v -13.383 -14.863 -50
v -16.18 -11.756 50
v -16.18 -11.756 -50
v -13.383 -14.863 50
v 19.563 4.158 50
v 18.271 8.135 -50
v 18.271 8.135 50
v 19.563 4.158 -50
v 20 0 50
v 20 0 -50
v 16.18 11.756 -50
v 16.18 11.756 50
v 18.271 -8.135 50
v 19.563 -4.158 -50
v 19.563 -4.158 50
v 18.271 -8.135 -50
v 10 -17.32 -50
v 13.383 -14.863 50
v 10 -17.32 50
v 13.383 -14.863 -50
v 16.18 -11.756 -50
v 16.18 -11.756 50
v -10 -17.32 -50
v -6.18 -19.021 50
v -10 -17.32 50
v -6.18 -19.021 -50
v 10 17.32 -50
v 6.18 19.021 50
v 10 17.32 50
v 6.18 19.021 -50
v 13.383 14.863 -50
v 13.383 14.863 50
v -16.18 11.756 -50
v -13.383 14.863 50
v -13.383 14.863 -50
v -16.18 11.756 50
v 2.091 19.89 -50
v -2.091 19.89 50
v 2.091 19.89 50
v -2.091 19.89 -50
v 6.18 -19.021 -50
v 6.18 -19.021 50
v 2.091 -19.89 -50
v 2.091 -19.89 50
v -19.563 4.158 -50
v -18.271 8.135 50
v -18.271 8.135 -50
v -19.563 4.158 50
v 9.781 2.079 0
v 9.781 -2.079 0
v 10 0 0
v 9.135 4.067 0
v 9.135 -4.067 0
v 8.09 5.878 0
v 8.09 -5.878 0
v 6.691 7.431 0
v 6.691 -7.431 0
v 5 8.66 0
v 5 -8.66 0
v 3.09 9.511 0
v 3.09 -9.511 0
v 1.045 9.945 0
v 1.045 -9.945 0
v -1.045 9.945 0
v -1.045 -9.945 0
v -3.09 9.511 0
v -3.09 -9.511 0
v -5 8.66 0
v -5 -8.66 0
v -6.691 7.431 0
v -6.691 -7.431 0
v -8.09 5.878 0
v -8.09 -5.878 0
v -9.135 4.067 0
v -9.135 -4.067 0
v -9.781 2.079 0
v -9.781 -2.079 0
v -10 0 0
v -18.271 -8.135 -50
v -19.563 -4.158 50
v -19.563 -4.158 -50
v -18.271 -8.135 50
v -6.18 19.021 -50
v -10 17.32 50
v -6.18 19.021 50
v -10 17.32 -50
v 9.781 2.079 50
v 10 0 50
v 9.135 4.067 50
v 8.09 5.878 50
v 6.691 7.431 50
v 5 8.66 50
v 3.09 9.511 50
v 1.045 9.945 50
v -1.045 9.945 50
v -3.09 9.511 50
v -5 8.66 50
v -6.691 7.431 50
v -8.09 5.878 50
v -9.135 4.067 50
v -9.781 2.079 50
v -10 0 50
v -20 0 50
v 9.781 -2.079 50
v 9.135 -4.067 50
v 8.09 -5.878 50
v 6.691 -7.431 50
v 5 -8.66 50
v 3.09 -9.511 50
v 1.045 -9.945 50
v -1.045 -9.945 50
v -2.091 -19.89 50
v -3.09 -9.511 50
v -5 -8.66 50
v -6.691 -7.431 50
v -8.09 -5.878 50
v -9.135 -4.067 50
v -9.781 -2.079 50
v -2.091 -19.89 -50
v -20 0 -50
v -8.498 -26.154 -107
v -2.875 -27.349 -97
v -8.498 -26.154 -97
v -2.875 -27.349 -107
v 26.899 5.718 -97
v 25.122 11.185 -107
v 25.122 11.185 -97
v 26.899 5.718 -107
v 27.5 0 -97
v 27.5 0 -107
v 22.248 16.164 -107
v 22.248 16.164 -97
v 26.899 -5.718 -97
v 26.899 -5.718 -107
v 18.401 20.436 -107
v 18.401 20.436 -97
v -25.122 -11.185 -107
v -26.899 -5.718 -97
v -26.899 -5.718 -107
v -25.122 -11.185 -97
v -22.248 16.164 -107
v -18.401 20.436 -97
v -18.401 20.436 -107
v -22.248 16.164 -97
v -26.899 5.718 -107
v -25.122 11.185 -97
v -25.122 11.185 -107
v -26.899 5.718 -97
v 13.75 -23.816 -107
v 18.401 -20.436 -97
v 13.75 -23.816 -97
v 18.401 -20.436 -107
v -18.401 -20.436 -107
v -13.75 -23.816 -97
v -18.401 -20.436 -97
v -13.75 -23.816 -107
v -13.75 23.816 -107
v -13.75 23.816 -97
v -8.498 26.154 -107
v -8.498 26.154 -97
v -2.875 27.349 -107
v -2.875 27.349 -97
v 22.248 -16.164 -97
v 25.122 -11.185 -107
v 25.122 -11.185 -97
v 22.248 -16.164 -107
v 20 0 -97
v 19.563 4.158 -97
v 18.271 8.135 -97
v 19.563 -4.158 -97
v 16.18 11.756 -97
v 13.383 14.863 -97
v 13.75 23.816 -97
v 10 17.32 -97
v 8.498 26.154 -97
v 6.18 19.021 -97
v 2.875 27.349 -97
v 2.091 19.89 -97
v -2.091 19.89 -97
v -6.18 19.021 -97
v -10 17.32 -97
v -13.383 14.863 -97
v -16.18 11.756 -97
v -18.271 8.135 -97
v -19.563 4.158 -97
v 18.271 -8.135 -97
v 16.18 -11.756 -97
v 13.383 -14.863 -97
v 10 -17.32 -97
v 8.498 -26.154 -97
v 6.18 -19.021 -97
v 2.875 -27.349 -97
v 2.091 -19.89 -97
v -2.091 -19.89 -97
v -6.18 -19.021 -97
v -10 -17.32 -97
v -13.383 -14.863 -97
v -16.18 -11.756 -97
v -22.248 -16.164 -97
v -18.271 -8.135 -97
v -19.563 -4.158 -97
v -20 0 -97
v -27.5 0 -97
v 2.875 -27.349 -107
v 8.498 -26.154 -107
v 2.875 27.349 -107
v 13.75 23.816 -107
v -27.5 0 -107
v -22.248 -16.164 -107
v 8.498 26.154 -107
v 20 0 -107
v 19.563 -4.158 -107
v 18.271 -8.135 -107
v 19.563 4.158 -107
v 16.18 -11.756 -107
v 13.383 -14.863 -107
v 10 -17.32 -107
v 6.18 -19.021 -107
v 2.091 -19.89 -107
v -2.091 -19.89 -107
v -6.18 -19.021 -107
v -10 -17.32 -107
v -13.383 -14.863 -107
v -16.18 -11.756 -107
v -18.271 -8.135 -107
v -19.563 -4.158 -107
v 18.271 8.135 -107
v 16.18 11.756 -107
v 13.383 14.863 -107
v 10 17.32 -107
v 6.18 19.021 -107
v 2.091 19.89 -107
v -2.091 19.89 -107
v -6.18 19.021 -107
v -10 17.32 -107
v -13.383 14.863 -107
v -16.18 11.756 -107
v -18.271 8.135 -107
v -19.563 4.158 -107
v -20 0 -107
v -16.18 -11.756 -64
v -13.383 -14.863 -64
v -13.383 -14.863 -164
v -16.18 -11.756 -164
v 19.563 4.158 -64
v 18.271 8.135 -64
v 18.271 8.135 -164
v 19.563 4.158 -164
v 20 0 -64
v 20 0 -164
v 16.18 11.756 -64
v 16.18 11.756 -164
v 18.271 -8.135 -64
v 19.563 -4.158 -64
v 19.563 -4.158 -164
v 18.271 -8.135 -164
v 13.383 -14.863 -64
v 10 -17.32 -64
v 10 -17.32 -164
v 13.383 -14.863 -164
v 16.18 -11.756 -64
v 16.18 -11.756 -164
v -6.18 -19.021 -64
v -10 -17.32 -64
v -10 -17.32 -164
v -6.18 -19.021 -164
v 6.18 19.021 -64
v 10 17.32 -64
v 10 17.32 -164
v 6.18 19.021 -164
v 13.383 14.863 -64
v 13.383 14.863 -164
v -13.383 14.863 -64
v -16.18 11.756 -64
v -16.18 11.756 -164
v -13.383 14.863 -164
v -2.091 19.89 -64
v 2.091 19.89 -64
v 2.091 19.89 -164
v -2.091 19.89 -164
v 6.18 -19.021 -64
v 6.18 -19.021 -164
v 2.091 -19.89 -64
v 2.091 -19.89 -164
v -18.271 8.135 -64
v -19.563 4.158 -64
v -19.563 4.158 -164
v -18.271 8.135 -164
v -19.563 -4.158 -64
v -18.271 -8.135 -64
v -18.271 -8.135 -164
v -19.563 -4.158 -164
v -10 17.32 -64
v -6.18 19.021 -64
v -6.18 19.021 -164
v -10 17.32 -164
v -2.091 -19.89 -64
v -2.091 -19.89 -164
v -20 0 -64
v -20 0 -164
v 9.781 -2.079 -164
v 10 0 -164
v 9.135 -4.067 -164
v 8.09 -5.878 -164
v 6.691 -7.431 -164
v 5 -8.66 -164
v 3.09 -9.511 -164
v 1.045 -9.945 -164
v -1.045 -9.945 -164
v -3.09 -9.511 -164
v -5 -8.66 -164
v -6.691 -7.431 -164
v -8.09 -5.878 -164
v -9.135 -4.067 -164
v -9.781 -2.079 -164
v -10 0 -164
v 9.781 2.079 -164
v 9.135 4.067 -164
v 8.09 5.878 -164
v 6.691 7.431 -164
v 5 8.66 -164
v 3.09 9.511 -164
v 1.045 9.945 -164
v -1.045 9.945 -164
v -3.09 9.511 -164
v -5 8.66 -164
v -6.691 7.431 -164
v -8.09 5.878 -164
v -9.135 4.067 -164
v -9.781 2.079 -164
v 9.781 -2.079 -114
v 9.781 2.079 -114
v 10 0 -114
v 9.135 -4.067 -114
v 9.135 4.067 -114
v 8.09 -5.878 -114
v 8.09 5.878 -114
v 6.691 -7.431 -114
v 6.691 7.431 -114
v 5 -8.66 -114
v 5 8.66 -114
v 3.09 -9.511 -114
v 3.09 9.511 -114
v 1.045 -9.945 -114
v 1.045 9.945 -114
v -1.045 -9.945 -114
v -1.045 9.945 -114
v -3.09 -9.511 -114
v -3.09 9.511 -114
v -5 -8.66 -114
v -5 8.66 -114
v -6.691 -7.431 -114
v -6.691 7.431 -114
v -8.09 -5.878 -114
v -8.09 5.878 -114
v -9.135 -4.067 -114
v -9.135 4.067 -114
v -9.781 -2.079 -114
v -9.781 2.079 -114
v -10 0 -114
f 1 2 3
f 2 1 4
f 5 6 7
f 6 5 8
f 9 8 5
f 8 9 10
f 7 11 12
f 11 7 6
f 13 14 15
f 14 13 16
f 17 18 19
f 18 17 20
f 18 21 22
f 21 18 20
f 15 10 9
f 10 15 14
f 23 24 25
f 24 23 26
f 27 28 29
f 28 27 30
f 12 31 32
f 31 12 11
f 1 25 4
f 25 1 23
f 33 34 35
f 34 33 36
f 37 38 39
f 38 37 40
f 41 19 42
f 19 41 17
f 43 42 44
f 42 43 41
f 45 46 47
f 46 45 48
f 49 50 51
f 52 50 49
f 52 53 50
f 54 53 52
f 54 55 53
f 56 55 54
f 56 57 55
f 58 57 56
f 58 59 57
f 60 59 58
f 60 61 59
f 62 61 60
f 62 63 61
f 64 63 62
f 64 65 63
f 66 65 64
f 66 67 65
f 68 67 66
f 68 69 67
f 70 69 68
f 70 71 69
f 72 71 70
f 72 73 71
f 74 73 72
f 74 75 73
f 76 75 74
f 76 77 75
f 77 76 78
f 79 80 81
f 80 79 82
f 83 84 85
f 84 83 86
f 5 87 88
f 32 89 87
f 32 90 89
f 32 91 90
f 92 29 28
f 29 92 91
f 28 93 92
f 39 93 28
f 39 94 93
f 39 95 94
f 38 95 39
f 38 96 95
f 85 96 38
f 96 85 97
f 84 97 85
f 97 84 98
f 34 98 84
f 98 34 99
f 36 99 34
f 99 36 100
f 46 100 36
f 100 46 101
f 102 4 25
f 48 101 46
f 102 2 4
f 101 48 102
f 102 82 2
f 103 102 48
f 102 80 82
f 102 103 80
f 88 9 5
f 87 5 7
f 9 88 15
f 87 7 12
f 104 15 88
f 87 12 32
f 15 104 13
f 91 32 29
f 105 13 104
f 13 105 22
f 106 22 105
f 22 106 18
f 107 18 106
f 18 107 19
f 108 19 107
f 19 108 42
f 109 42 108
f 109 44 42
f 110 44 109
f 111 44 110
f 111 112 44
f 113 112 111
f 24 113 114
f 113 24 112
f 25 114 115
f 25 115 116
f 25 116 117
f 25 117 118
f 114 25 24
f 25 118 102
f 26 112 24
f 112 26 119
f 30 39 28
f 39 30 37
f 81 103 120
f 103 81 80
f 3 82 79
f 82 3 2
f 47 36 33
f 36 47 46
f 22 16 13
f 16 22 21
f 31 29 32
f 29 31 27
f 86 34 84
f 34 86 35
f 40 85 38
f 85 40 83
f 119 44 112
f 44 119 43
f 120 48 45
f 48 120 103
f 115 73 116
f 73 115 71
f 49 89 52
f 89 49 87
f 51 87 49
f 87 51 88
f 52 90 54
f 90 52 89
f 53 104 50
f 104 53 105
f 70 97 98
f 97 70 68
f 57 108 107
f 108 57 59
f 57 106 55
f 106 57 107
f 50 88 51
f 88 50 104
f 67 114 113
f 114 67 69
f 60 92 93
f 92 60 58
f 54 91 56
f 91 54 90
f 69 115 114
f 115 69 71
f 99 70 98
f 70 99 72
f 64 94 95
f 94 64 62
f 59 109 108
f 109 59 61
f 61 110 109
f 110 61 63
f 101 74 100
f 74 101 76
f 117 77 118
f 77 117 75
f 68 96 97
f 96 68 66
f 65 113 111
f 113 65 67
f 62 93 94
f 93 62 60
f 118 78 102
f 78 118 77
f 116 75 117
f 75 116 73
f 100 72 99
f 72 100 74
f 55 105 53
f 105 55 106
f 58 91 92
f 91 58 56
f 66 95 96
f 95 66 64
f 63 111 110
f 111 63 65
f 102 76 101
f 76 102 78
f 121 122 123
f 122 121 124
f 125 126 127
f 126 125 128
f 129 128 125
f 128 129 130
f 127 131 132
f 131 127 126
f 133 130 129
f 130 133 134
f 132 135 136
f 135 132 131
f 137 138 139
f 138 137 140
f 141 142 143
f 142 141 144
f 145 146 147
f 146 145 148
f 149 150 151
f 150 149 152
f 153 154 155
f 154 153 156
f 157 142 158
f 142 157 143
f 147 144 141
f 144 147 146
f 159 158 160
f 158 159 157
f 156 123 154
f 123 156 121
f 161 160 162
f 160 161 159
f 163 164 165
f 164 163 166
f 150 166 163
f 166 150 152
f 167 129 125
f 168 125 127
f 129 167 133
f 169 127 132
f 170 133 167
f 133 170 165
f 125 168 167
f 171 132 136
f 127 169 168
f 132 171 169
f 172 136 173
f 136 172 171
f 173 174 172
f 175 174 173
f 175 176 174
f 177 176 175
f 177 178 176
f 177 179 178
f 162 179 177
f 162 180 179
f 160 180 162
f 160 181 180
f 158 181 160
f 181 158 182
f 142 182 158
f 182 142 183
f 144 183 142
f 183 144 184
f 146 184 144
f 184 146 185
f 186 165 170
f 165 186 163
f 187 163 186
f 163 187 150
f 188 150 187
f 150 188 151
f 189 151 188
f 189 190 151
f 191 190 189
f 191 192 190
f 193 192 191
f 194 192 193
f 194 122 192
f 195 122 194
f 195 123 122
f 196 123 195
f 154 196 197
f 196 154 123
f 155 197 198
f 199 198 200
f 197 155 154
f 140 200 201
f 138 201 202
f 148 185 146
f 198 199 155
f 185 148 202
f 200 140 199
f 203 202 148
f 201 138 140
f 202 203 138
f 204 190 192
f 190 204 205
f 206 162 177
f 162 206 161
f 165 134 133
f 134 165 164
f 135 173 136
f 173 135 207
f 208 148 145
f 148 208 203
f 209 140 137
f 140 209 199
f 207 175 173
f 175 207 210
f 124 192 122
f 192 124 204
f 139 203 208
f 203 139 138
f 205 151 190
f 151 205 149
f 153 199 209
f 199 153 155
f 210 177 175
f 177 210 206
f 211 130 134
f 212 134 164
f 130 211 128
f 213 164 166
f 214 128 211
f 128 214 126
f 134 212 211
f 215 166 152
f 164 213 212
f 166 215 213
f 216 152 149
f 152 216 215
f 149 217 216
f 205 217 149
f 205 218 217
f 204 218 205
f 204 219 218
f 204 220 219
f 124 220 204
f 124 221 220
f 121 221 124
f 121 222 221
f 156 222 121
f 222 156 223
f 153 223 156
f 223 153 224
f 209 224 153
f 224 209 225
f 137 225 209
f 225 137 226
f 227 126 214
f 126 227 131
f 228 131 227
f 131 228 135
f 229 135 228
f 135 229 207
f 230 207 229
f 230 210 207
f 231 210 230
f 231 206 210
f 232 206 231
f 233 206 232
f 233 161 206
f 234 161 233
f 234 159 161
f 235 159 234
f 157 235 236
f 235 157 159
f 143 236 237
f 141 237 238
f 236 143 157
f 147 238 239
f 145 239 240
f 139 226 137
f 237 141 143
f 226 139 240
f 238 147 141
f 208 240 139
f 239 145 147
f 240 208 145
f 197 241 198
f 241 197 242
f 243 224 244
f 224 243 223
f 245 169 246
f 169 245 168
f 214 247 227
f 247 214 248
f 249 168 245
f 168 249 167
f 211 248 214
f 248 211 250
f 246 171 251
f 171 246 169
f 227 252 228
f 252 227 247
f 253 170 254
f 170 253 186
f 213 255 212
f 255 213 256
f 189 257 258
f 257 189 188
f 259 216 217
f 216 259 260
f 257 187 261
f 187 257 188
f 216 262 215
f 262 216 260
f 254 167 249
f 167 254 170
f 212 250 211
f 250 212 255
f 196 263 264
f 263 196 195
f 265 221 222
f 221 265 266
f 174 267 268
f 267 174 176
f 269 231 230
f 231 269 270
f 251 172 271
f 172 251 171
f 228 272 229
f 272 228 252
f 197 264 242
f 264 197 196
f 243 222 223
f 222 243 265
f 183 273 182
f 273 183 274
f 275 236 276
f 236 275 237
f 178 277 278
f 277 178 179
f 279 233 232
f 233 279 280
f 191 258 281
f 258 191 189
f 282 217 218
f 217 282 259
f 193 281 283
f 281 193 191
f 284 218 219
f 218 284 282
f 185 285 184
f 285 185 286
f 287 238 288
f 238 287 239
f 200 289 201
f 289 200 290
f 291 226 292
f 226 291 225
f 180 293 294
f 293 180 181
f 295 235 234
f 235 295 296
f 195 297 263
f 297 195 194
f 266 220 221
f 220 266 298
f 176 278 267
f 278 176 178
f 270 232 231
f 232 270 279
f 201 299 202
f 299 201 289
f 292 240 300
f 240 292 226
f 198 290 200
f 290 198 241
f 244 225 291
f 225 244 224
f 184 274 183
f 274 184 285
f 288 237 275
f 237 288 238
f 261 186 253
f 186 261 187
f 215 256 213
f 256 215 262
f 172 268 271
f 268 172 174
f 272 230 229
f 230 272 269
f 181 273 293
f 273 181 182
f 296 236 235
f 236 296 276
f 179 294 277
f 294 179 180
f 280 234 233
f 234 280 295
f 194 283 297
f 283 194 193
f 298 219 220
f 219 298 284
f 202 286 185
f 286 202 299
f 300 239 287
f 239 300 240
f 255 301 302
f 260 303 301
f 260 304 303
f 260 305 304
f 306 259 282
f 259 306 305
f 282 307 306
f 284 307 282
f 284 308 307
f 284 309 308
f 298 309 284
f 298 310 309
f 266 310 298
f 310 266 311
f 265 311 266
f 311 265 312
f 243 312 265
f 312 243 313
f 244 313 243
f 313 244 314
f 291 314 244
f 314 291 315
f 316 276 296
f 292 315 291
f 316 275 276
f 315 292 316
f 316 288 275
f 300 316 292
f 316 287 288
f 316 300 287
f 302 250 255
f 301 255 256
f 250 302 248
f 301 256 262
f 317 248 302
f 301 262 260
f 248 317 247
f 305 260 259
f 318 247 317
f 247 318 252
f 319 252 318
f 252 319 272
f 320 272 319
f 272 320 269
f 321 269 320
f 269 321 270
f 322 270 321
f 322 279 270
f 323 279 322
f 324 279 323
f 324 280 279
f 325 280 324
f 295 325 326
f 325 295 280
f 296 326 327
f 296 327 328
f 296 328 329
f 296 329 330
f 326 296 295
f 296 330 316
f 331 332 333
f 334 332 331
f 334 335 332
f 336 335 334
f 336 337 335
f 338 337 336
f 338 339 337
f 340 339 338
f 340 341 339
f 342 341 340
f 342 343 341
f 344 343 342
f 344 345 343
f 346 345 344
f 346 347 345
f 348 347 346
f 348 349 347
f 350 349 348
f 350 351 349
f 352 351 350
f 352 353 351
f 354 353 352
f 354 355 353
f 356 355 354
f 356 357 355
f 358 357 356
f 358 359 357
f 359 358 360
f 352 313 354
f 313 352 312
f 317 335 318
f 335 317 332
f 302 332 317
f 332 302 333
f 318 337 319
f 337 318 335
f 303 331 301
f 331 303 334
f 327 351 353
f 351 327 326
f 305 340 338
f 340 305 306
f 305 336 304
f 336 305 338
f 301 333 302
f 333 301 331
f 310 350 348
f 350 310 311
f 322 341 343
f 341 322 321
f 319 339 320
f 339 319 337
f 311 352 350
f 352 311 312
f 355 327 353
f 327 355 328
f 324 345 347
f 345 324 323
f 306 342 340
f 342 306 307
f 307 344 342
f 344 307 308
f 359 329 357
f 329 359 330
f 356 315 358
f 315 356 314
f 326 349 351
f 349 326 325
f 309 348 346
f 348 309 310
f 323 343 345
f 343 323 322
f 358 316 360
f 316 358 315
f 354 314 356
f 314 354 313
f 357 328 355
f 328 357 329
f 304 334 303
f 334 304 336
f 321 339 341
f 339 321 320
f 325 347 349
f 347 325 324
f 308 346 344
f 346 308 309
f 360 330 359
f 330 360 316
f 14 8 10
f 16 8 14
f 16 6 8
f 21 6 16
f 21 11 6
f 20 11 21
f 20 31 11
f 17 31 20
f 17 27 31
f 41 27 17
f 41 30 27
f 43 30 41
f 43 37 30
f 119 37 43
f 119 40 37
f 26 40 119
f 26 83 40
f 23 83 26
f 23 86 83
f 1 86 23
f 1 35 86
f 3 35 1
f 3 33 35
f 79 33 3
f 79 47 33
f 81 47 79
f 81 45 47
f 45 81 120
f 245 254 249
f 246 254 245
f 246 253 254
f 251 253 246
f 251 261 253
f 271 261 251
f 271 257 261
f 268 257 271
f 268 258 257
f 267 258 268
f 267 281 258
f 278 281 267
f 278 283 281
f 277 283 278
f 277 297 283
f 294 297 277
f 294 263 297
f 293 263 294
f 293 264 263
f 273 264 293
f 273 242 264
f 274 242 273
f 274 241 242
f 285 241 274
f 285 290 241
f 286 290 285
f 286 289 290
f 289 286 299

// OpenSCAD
// Define parameters for components
hollow_cylindrical_body_diameter = 40;
hollow_cylindrical_body_height = 50;
hollow_cylindrical_body_inner_diameter = 20; // Adjusted to ensure uniform inner cavity

solid_cylindrical_body_diameter = 40;
solid_cylindrical_body_height = 50;

spacer_ring_outer_diameter = 40;
spacer_ring_inner_diameter = 30;
spacer_ring_thickness = 2; // Reduced thickness to match original model

flange_plate_outer_diameter = 55; // Increased outer diameter to match original model
flange_plate_inner_diameter = 30;
flange_plate_thickness = 5;

bolt_diameter = 5;
bolt_length = 70; // Extended length to match original model
bolt_head_diameter = 8; // Increased head diameter to match original model
bolt_threaded_length = 60; // Extended threaded section

nut_diameter = 10;
nut_thickness = 5;

// Hollow cylindrical body
module hollow_cylindrical_body() {
    difference() {
        cylinder(h = hollow_cylindrical_body_height, d = hollow_cylindrical_body_diameter);
        translate([0, 0, -1]) // Ensure inner cavity runs through
            cylinder(h = hollow_cylindrical_body_height + 2, d = hollow_cylindrical_body_inner_diameter);
    }
}

// Solid cylindrical body
module solid_cylindrical_body() {
    cylinder(h = solid_cylindrical_body_height, d = solid_cylindrical_body_diameter);
}

// Spacer ring
module spacer_ring() {
    difference() {
        cylinder(h = spacer_ring_thickness, d = spacer_ring_outer_diameter);
        translate([0, 0, -1]) // Ensure hollow center
            cylinder(h = spacer_ring_thickness + 2, d = spacer_ring_inner_diameter);
    }
}

// Flange plate
module flange_plate() {
    difference() {
        cylinder(h = flange_plate_thickness, d = flange_plate_outer_diameter);
        translate([0, 0, -1]) // Ensure hollow center
            cylinder(h = flange_plate_thickness + 2, d = flange_plate_inner_diameter);
    }
}

// Bolt
module bolt() {
    union() {
        cylinder(h = bolt_threaded_length, d = bolt_diameter); // Threaded section
        translate([0, 0, bolt_threaded_length])
            cylinder(h = bolt_length - bolt_threaded_length, d = bolt_head_diameter); // Bolt head
    }
}

// Nut
module nut() {
    difference() {
        cylinder(h = nut_thickness, d = nut_diameter);
        translate([0, 0, -1]) // Ensure threaded cavity
            cylinder(h = nut_thickness + 2, d = bolt_diameter);
    }
}

// Assemble the model
translate([0, 0, 0]) hollow_cylindrical_body(); // Layer 1
translate([0, 0, -hollow_cylindrical_body_height]) solid_cylindrical_body(); // Layer 2
translate([0, 0, -hollow_cylindrical_body_height - solid_cylindrical_body_height]) spacer_ring(); // Layer 3
translate([0, 0, -hollow_cylindrical_body_height - solid_cylindrical_body_height - spacer_ring_thickness]) flange_plate(); // Layer 4
translate([0, 0, -hollow_cylindrical_body_height - solid_cylindrical_body_height - spacer_ring_thickness - flange_plate_thickness]) flange_plate(); // Layer 5
translate([0, 0, -hollow_cylindrical_body_height - solid_cylindrical_body_height - spacer_ring_thickness - flange_plate_thickness * 2]) spacer_ring(); // Layer 6
translate([0, 0, -hollow_cylindrical_body_height - solid_cylindrical_body_height - spacer_ring_thickness - flange_plate_thickness * 2 - spacer_ring_thickness]) solid_cylindrical_body(); // Layer 7
translate([0, 0, -hollow_cylindrical_body_height - solid_cylindrical_body_height - spacer_ring_thickness - flange_plate_thickness * 2 - spacer_ring_thickness - solid_cylindrical_body_height]) hollow_cylindrical_body(); // Layer 8
